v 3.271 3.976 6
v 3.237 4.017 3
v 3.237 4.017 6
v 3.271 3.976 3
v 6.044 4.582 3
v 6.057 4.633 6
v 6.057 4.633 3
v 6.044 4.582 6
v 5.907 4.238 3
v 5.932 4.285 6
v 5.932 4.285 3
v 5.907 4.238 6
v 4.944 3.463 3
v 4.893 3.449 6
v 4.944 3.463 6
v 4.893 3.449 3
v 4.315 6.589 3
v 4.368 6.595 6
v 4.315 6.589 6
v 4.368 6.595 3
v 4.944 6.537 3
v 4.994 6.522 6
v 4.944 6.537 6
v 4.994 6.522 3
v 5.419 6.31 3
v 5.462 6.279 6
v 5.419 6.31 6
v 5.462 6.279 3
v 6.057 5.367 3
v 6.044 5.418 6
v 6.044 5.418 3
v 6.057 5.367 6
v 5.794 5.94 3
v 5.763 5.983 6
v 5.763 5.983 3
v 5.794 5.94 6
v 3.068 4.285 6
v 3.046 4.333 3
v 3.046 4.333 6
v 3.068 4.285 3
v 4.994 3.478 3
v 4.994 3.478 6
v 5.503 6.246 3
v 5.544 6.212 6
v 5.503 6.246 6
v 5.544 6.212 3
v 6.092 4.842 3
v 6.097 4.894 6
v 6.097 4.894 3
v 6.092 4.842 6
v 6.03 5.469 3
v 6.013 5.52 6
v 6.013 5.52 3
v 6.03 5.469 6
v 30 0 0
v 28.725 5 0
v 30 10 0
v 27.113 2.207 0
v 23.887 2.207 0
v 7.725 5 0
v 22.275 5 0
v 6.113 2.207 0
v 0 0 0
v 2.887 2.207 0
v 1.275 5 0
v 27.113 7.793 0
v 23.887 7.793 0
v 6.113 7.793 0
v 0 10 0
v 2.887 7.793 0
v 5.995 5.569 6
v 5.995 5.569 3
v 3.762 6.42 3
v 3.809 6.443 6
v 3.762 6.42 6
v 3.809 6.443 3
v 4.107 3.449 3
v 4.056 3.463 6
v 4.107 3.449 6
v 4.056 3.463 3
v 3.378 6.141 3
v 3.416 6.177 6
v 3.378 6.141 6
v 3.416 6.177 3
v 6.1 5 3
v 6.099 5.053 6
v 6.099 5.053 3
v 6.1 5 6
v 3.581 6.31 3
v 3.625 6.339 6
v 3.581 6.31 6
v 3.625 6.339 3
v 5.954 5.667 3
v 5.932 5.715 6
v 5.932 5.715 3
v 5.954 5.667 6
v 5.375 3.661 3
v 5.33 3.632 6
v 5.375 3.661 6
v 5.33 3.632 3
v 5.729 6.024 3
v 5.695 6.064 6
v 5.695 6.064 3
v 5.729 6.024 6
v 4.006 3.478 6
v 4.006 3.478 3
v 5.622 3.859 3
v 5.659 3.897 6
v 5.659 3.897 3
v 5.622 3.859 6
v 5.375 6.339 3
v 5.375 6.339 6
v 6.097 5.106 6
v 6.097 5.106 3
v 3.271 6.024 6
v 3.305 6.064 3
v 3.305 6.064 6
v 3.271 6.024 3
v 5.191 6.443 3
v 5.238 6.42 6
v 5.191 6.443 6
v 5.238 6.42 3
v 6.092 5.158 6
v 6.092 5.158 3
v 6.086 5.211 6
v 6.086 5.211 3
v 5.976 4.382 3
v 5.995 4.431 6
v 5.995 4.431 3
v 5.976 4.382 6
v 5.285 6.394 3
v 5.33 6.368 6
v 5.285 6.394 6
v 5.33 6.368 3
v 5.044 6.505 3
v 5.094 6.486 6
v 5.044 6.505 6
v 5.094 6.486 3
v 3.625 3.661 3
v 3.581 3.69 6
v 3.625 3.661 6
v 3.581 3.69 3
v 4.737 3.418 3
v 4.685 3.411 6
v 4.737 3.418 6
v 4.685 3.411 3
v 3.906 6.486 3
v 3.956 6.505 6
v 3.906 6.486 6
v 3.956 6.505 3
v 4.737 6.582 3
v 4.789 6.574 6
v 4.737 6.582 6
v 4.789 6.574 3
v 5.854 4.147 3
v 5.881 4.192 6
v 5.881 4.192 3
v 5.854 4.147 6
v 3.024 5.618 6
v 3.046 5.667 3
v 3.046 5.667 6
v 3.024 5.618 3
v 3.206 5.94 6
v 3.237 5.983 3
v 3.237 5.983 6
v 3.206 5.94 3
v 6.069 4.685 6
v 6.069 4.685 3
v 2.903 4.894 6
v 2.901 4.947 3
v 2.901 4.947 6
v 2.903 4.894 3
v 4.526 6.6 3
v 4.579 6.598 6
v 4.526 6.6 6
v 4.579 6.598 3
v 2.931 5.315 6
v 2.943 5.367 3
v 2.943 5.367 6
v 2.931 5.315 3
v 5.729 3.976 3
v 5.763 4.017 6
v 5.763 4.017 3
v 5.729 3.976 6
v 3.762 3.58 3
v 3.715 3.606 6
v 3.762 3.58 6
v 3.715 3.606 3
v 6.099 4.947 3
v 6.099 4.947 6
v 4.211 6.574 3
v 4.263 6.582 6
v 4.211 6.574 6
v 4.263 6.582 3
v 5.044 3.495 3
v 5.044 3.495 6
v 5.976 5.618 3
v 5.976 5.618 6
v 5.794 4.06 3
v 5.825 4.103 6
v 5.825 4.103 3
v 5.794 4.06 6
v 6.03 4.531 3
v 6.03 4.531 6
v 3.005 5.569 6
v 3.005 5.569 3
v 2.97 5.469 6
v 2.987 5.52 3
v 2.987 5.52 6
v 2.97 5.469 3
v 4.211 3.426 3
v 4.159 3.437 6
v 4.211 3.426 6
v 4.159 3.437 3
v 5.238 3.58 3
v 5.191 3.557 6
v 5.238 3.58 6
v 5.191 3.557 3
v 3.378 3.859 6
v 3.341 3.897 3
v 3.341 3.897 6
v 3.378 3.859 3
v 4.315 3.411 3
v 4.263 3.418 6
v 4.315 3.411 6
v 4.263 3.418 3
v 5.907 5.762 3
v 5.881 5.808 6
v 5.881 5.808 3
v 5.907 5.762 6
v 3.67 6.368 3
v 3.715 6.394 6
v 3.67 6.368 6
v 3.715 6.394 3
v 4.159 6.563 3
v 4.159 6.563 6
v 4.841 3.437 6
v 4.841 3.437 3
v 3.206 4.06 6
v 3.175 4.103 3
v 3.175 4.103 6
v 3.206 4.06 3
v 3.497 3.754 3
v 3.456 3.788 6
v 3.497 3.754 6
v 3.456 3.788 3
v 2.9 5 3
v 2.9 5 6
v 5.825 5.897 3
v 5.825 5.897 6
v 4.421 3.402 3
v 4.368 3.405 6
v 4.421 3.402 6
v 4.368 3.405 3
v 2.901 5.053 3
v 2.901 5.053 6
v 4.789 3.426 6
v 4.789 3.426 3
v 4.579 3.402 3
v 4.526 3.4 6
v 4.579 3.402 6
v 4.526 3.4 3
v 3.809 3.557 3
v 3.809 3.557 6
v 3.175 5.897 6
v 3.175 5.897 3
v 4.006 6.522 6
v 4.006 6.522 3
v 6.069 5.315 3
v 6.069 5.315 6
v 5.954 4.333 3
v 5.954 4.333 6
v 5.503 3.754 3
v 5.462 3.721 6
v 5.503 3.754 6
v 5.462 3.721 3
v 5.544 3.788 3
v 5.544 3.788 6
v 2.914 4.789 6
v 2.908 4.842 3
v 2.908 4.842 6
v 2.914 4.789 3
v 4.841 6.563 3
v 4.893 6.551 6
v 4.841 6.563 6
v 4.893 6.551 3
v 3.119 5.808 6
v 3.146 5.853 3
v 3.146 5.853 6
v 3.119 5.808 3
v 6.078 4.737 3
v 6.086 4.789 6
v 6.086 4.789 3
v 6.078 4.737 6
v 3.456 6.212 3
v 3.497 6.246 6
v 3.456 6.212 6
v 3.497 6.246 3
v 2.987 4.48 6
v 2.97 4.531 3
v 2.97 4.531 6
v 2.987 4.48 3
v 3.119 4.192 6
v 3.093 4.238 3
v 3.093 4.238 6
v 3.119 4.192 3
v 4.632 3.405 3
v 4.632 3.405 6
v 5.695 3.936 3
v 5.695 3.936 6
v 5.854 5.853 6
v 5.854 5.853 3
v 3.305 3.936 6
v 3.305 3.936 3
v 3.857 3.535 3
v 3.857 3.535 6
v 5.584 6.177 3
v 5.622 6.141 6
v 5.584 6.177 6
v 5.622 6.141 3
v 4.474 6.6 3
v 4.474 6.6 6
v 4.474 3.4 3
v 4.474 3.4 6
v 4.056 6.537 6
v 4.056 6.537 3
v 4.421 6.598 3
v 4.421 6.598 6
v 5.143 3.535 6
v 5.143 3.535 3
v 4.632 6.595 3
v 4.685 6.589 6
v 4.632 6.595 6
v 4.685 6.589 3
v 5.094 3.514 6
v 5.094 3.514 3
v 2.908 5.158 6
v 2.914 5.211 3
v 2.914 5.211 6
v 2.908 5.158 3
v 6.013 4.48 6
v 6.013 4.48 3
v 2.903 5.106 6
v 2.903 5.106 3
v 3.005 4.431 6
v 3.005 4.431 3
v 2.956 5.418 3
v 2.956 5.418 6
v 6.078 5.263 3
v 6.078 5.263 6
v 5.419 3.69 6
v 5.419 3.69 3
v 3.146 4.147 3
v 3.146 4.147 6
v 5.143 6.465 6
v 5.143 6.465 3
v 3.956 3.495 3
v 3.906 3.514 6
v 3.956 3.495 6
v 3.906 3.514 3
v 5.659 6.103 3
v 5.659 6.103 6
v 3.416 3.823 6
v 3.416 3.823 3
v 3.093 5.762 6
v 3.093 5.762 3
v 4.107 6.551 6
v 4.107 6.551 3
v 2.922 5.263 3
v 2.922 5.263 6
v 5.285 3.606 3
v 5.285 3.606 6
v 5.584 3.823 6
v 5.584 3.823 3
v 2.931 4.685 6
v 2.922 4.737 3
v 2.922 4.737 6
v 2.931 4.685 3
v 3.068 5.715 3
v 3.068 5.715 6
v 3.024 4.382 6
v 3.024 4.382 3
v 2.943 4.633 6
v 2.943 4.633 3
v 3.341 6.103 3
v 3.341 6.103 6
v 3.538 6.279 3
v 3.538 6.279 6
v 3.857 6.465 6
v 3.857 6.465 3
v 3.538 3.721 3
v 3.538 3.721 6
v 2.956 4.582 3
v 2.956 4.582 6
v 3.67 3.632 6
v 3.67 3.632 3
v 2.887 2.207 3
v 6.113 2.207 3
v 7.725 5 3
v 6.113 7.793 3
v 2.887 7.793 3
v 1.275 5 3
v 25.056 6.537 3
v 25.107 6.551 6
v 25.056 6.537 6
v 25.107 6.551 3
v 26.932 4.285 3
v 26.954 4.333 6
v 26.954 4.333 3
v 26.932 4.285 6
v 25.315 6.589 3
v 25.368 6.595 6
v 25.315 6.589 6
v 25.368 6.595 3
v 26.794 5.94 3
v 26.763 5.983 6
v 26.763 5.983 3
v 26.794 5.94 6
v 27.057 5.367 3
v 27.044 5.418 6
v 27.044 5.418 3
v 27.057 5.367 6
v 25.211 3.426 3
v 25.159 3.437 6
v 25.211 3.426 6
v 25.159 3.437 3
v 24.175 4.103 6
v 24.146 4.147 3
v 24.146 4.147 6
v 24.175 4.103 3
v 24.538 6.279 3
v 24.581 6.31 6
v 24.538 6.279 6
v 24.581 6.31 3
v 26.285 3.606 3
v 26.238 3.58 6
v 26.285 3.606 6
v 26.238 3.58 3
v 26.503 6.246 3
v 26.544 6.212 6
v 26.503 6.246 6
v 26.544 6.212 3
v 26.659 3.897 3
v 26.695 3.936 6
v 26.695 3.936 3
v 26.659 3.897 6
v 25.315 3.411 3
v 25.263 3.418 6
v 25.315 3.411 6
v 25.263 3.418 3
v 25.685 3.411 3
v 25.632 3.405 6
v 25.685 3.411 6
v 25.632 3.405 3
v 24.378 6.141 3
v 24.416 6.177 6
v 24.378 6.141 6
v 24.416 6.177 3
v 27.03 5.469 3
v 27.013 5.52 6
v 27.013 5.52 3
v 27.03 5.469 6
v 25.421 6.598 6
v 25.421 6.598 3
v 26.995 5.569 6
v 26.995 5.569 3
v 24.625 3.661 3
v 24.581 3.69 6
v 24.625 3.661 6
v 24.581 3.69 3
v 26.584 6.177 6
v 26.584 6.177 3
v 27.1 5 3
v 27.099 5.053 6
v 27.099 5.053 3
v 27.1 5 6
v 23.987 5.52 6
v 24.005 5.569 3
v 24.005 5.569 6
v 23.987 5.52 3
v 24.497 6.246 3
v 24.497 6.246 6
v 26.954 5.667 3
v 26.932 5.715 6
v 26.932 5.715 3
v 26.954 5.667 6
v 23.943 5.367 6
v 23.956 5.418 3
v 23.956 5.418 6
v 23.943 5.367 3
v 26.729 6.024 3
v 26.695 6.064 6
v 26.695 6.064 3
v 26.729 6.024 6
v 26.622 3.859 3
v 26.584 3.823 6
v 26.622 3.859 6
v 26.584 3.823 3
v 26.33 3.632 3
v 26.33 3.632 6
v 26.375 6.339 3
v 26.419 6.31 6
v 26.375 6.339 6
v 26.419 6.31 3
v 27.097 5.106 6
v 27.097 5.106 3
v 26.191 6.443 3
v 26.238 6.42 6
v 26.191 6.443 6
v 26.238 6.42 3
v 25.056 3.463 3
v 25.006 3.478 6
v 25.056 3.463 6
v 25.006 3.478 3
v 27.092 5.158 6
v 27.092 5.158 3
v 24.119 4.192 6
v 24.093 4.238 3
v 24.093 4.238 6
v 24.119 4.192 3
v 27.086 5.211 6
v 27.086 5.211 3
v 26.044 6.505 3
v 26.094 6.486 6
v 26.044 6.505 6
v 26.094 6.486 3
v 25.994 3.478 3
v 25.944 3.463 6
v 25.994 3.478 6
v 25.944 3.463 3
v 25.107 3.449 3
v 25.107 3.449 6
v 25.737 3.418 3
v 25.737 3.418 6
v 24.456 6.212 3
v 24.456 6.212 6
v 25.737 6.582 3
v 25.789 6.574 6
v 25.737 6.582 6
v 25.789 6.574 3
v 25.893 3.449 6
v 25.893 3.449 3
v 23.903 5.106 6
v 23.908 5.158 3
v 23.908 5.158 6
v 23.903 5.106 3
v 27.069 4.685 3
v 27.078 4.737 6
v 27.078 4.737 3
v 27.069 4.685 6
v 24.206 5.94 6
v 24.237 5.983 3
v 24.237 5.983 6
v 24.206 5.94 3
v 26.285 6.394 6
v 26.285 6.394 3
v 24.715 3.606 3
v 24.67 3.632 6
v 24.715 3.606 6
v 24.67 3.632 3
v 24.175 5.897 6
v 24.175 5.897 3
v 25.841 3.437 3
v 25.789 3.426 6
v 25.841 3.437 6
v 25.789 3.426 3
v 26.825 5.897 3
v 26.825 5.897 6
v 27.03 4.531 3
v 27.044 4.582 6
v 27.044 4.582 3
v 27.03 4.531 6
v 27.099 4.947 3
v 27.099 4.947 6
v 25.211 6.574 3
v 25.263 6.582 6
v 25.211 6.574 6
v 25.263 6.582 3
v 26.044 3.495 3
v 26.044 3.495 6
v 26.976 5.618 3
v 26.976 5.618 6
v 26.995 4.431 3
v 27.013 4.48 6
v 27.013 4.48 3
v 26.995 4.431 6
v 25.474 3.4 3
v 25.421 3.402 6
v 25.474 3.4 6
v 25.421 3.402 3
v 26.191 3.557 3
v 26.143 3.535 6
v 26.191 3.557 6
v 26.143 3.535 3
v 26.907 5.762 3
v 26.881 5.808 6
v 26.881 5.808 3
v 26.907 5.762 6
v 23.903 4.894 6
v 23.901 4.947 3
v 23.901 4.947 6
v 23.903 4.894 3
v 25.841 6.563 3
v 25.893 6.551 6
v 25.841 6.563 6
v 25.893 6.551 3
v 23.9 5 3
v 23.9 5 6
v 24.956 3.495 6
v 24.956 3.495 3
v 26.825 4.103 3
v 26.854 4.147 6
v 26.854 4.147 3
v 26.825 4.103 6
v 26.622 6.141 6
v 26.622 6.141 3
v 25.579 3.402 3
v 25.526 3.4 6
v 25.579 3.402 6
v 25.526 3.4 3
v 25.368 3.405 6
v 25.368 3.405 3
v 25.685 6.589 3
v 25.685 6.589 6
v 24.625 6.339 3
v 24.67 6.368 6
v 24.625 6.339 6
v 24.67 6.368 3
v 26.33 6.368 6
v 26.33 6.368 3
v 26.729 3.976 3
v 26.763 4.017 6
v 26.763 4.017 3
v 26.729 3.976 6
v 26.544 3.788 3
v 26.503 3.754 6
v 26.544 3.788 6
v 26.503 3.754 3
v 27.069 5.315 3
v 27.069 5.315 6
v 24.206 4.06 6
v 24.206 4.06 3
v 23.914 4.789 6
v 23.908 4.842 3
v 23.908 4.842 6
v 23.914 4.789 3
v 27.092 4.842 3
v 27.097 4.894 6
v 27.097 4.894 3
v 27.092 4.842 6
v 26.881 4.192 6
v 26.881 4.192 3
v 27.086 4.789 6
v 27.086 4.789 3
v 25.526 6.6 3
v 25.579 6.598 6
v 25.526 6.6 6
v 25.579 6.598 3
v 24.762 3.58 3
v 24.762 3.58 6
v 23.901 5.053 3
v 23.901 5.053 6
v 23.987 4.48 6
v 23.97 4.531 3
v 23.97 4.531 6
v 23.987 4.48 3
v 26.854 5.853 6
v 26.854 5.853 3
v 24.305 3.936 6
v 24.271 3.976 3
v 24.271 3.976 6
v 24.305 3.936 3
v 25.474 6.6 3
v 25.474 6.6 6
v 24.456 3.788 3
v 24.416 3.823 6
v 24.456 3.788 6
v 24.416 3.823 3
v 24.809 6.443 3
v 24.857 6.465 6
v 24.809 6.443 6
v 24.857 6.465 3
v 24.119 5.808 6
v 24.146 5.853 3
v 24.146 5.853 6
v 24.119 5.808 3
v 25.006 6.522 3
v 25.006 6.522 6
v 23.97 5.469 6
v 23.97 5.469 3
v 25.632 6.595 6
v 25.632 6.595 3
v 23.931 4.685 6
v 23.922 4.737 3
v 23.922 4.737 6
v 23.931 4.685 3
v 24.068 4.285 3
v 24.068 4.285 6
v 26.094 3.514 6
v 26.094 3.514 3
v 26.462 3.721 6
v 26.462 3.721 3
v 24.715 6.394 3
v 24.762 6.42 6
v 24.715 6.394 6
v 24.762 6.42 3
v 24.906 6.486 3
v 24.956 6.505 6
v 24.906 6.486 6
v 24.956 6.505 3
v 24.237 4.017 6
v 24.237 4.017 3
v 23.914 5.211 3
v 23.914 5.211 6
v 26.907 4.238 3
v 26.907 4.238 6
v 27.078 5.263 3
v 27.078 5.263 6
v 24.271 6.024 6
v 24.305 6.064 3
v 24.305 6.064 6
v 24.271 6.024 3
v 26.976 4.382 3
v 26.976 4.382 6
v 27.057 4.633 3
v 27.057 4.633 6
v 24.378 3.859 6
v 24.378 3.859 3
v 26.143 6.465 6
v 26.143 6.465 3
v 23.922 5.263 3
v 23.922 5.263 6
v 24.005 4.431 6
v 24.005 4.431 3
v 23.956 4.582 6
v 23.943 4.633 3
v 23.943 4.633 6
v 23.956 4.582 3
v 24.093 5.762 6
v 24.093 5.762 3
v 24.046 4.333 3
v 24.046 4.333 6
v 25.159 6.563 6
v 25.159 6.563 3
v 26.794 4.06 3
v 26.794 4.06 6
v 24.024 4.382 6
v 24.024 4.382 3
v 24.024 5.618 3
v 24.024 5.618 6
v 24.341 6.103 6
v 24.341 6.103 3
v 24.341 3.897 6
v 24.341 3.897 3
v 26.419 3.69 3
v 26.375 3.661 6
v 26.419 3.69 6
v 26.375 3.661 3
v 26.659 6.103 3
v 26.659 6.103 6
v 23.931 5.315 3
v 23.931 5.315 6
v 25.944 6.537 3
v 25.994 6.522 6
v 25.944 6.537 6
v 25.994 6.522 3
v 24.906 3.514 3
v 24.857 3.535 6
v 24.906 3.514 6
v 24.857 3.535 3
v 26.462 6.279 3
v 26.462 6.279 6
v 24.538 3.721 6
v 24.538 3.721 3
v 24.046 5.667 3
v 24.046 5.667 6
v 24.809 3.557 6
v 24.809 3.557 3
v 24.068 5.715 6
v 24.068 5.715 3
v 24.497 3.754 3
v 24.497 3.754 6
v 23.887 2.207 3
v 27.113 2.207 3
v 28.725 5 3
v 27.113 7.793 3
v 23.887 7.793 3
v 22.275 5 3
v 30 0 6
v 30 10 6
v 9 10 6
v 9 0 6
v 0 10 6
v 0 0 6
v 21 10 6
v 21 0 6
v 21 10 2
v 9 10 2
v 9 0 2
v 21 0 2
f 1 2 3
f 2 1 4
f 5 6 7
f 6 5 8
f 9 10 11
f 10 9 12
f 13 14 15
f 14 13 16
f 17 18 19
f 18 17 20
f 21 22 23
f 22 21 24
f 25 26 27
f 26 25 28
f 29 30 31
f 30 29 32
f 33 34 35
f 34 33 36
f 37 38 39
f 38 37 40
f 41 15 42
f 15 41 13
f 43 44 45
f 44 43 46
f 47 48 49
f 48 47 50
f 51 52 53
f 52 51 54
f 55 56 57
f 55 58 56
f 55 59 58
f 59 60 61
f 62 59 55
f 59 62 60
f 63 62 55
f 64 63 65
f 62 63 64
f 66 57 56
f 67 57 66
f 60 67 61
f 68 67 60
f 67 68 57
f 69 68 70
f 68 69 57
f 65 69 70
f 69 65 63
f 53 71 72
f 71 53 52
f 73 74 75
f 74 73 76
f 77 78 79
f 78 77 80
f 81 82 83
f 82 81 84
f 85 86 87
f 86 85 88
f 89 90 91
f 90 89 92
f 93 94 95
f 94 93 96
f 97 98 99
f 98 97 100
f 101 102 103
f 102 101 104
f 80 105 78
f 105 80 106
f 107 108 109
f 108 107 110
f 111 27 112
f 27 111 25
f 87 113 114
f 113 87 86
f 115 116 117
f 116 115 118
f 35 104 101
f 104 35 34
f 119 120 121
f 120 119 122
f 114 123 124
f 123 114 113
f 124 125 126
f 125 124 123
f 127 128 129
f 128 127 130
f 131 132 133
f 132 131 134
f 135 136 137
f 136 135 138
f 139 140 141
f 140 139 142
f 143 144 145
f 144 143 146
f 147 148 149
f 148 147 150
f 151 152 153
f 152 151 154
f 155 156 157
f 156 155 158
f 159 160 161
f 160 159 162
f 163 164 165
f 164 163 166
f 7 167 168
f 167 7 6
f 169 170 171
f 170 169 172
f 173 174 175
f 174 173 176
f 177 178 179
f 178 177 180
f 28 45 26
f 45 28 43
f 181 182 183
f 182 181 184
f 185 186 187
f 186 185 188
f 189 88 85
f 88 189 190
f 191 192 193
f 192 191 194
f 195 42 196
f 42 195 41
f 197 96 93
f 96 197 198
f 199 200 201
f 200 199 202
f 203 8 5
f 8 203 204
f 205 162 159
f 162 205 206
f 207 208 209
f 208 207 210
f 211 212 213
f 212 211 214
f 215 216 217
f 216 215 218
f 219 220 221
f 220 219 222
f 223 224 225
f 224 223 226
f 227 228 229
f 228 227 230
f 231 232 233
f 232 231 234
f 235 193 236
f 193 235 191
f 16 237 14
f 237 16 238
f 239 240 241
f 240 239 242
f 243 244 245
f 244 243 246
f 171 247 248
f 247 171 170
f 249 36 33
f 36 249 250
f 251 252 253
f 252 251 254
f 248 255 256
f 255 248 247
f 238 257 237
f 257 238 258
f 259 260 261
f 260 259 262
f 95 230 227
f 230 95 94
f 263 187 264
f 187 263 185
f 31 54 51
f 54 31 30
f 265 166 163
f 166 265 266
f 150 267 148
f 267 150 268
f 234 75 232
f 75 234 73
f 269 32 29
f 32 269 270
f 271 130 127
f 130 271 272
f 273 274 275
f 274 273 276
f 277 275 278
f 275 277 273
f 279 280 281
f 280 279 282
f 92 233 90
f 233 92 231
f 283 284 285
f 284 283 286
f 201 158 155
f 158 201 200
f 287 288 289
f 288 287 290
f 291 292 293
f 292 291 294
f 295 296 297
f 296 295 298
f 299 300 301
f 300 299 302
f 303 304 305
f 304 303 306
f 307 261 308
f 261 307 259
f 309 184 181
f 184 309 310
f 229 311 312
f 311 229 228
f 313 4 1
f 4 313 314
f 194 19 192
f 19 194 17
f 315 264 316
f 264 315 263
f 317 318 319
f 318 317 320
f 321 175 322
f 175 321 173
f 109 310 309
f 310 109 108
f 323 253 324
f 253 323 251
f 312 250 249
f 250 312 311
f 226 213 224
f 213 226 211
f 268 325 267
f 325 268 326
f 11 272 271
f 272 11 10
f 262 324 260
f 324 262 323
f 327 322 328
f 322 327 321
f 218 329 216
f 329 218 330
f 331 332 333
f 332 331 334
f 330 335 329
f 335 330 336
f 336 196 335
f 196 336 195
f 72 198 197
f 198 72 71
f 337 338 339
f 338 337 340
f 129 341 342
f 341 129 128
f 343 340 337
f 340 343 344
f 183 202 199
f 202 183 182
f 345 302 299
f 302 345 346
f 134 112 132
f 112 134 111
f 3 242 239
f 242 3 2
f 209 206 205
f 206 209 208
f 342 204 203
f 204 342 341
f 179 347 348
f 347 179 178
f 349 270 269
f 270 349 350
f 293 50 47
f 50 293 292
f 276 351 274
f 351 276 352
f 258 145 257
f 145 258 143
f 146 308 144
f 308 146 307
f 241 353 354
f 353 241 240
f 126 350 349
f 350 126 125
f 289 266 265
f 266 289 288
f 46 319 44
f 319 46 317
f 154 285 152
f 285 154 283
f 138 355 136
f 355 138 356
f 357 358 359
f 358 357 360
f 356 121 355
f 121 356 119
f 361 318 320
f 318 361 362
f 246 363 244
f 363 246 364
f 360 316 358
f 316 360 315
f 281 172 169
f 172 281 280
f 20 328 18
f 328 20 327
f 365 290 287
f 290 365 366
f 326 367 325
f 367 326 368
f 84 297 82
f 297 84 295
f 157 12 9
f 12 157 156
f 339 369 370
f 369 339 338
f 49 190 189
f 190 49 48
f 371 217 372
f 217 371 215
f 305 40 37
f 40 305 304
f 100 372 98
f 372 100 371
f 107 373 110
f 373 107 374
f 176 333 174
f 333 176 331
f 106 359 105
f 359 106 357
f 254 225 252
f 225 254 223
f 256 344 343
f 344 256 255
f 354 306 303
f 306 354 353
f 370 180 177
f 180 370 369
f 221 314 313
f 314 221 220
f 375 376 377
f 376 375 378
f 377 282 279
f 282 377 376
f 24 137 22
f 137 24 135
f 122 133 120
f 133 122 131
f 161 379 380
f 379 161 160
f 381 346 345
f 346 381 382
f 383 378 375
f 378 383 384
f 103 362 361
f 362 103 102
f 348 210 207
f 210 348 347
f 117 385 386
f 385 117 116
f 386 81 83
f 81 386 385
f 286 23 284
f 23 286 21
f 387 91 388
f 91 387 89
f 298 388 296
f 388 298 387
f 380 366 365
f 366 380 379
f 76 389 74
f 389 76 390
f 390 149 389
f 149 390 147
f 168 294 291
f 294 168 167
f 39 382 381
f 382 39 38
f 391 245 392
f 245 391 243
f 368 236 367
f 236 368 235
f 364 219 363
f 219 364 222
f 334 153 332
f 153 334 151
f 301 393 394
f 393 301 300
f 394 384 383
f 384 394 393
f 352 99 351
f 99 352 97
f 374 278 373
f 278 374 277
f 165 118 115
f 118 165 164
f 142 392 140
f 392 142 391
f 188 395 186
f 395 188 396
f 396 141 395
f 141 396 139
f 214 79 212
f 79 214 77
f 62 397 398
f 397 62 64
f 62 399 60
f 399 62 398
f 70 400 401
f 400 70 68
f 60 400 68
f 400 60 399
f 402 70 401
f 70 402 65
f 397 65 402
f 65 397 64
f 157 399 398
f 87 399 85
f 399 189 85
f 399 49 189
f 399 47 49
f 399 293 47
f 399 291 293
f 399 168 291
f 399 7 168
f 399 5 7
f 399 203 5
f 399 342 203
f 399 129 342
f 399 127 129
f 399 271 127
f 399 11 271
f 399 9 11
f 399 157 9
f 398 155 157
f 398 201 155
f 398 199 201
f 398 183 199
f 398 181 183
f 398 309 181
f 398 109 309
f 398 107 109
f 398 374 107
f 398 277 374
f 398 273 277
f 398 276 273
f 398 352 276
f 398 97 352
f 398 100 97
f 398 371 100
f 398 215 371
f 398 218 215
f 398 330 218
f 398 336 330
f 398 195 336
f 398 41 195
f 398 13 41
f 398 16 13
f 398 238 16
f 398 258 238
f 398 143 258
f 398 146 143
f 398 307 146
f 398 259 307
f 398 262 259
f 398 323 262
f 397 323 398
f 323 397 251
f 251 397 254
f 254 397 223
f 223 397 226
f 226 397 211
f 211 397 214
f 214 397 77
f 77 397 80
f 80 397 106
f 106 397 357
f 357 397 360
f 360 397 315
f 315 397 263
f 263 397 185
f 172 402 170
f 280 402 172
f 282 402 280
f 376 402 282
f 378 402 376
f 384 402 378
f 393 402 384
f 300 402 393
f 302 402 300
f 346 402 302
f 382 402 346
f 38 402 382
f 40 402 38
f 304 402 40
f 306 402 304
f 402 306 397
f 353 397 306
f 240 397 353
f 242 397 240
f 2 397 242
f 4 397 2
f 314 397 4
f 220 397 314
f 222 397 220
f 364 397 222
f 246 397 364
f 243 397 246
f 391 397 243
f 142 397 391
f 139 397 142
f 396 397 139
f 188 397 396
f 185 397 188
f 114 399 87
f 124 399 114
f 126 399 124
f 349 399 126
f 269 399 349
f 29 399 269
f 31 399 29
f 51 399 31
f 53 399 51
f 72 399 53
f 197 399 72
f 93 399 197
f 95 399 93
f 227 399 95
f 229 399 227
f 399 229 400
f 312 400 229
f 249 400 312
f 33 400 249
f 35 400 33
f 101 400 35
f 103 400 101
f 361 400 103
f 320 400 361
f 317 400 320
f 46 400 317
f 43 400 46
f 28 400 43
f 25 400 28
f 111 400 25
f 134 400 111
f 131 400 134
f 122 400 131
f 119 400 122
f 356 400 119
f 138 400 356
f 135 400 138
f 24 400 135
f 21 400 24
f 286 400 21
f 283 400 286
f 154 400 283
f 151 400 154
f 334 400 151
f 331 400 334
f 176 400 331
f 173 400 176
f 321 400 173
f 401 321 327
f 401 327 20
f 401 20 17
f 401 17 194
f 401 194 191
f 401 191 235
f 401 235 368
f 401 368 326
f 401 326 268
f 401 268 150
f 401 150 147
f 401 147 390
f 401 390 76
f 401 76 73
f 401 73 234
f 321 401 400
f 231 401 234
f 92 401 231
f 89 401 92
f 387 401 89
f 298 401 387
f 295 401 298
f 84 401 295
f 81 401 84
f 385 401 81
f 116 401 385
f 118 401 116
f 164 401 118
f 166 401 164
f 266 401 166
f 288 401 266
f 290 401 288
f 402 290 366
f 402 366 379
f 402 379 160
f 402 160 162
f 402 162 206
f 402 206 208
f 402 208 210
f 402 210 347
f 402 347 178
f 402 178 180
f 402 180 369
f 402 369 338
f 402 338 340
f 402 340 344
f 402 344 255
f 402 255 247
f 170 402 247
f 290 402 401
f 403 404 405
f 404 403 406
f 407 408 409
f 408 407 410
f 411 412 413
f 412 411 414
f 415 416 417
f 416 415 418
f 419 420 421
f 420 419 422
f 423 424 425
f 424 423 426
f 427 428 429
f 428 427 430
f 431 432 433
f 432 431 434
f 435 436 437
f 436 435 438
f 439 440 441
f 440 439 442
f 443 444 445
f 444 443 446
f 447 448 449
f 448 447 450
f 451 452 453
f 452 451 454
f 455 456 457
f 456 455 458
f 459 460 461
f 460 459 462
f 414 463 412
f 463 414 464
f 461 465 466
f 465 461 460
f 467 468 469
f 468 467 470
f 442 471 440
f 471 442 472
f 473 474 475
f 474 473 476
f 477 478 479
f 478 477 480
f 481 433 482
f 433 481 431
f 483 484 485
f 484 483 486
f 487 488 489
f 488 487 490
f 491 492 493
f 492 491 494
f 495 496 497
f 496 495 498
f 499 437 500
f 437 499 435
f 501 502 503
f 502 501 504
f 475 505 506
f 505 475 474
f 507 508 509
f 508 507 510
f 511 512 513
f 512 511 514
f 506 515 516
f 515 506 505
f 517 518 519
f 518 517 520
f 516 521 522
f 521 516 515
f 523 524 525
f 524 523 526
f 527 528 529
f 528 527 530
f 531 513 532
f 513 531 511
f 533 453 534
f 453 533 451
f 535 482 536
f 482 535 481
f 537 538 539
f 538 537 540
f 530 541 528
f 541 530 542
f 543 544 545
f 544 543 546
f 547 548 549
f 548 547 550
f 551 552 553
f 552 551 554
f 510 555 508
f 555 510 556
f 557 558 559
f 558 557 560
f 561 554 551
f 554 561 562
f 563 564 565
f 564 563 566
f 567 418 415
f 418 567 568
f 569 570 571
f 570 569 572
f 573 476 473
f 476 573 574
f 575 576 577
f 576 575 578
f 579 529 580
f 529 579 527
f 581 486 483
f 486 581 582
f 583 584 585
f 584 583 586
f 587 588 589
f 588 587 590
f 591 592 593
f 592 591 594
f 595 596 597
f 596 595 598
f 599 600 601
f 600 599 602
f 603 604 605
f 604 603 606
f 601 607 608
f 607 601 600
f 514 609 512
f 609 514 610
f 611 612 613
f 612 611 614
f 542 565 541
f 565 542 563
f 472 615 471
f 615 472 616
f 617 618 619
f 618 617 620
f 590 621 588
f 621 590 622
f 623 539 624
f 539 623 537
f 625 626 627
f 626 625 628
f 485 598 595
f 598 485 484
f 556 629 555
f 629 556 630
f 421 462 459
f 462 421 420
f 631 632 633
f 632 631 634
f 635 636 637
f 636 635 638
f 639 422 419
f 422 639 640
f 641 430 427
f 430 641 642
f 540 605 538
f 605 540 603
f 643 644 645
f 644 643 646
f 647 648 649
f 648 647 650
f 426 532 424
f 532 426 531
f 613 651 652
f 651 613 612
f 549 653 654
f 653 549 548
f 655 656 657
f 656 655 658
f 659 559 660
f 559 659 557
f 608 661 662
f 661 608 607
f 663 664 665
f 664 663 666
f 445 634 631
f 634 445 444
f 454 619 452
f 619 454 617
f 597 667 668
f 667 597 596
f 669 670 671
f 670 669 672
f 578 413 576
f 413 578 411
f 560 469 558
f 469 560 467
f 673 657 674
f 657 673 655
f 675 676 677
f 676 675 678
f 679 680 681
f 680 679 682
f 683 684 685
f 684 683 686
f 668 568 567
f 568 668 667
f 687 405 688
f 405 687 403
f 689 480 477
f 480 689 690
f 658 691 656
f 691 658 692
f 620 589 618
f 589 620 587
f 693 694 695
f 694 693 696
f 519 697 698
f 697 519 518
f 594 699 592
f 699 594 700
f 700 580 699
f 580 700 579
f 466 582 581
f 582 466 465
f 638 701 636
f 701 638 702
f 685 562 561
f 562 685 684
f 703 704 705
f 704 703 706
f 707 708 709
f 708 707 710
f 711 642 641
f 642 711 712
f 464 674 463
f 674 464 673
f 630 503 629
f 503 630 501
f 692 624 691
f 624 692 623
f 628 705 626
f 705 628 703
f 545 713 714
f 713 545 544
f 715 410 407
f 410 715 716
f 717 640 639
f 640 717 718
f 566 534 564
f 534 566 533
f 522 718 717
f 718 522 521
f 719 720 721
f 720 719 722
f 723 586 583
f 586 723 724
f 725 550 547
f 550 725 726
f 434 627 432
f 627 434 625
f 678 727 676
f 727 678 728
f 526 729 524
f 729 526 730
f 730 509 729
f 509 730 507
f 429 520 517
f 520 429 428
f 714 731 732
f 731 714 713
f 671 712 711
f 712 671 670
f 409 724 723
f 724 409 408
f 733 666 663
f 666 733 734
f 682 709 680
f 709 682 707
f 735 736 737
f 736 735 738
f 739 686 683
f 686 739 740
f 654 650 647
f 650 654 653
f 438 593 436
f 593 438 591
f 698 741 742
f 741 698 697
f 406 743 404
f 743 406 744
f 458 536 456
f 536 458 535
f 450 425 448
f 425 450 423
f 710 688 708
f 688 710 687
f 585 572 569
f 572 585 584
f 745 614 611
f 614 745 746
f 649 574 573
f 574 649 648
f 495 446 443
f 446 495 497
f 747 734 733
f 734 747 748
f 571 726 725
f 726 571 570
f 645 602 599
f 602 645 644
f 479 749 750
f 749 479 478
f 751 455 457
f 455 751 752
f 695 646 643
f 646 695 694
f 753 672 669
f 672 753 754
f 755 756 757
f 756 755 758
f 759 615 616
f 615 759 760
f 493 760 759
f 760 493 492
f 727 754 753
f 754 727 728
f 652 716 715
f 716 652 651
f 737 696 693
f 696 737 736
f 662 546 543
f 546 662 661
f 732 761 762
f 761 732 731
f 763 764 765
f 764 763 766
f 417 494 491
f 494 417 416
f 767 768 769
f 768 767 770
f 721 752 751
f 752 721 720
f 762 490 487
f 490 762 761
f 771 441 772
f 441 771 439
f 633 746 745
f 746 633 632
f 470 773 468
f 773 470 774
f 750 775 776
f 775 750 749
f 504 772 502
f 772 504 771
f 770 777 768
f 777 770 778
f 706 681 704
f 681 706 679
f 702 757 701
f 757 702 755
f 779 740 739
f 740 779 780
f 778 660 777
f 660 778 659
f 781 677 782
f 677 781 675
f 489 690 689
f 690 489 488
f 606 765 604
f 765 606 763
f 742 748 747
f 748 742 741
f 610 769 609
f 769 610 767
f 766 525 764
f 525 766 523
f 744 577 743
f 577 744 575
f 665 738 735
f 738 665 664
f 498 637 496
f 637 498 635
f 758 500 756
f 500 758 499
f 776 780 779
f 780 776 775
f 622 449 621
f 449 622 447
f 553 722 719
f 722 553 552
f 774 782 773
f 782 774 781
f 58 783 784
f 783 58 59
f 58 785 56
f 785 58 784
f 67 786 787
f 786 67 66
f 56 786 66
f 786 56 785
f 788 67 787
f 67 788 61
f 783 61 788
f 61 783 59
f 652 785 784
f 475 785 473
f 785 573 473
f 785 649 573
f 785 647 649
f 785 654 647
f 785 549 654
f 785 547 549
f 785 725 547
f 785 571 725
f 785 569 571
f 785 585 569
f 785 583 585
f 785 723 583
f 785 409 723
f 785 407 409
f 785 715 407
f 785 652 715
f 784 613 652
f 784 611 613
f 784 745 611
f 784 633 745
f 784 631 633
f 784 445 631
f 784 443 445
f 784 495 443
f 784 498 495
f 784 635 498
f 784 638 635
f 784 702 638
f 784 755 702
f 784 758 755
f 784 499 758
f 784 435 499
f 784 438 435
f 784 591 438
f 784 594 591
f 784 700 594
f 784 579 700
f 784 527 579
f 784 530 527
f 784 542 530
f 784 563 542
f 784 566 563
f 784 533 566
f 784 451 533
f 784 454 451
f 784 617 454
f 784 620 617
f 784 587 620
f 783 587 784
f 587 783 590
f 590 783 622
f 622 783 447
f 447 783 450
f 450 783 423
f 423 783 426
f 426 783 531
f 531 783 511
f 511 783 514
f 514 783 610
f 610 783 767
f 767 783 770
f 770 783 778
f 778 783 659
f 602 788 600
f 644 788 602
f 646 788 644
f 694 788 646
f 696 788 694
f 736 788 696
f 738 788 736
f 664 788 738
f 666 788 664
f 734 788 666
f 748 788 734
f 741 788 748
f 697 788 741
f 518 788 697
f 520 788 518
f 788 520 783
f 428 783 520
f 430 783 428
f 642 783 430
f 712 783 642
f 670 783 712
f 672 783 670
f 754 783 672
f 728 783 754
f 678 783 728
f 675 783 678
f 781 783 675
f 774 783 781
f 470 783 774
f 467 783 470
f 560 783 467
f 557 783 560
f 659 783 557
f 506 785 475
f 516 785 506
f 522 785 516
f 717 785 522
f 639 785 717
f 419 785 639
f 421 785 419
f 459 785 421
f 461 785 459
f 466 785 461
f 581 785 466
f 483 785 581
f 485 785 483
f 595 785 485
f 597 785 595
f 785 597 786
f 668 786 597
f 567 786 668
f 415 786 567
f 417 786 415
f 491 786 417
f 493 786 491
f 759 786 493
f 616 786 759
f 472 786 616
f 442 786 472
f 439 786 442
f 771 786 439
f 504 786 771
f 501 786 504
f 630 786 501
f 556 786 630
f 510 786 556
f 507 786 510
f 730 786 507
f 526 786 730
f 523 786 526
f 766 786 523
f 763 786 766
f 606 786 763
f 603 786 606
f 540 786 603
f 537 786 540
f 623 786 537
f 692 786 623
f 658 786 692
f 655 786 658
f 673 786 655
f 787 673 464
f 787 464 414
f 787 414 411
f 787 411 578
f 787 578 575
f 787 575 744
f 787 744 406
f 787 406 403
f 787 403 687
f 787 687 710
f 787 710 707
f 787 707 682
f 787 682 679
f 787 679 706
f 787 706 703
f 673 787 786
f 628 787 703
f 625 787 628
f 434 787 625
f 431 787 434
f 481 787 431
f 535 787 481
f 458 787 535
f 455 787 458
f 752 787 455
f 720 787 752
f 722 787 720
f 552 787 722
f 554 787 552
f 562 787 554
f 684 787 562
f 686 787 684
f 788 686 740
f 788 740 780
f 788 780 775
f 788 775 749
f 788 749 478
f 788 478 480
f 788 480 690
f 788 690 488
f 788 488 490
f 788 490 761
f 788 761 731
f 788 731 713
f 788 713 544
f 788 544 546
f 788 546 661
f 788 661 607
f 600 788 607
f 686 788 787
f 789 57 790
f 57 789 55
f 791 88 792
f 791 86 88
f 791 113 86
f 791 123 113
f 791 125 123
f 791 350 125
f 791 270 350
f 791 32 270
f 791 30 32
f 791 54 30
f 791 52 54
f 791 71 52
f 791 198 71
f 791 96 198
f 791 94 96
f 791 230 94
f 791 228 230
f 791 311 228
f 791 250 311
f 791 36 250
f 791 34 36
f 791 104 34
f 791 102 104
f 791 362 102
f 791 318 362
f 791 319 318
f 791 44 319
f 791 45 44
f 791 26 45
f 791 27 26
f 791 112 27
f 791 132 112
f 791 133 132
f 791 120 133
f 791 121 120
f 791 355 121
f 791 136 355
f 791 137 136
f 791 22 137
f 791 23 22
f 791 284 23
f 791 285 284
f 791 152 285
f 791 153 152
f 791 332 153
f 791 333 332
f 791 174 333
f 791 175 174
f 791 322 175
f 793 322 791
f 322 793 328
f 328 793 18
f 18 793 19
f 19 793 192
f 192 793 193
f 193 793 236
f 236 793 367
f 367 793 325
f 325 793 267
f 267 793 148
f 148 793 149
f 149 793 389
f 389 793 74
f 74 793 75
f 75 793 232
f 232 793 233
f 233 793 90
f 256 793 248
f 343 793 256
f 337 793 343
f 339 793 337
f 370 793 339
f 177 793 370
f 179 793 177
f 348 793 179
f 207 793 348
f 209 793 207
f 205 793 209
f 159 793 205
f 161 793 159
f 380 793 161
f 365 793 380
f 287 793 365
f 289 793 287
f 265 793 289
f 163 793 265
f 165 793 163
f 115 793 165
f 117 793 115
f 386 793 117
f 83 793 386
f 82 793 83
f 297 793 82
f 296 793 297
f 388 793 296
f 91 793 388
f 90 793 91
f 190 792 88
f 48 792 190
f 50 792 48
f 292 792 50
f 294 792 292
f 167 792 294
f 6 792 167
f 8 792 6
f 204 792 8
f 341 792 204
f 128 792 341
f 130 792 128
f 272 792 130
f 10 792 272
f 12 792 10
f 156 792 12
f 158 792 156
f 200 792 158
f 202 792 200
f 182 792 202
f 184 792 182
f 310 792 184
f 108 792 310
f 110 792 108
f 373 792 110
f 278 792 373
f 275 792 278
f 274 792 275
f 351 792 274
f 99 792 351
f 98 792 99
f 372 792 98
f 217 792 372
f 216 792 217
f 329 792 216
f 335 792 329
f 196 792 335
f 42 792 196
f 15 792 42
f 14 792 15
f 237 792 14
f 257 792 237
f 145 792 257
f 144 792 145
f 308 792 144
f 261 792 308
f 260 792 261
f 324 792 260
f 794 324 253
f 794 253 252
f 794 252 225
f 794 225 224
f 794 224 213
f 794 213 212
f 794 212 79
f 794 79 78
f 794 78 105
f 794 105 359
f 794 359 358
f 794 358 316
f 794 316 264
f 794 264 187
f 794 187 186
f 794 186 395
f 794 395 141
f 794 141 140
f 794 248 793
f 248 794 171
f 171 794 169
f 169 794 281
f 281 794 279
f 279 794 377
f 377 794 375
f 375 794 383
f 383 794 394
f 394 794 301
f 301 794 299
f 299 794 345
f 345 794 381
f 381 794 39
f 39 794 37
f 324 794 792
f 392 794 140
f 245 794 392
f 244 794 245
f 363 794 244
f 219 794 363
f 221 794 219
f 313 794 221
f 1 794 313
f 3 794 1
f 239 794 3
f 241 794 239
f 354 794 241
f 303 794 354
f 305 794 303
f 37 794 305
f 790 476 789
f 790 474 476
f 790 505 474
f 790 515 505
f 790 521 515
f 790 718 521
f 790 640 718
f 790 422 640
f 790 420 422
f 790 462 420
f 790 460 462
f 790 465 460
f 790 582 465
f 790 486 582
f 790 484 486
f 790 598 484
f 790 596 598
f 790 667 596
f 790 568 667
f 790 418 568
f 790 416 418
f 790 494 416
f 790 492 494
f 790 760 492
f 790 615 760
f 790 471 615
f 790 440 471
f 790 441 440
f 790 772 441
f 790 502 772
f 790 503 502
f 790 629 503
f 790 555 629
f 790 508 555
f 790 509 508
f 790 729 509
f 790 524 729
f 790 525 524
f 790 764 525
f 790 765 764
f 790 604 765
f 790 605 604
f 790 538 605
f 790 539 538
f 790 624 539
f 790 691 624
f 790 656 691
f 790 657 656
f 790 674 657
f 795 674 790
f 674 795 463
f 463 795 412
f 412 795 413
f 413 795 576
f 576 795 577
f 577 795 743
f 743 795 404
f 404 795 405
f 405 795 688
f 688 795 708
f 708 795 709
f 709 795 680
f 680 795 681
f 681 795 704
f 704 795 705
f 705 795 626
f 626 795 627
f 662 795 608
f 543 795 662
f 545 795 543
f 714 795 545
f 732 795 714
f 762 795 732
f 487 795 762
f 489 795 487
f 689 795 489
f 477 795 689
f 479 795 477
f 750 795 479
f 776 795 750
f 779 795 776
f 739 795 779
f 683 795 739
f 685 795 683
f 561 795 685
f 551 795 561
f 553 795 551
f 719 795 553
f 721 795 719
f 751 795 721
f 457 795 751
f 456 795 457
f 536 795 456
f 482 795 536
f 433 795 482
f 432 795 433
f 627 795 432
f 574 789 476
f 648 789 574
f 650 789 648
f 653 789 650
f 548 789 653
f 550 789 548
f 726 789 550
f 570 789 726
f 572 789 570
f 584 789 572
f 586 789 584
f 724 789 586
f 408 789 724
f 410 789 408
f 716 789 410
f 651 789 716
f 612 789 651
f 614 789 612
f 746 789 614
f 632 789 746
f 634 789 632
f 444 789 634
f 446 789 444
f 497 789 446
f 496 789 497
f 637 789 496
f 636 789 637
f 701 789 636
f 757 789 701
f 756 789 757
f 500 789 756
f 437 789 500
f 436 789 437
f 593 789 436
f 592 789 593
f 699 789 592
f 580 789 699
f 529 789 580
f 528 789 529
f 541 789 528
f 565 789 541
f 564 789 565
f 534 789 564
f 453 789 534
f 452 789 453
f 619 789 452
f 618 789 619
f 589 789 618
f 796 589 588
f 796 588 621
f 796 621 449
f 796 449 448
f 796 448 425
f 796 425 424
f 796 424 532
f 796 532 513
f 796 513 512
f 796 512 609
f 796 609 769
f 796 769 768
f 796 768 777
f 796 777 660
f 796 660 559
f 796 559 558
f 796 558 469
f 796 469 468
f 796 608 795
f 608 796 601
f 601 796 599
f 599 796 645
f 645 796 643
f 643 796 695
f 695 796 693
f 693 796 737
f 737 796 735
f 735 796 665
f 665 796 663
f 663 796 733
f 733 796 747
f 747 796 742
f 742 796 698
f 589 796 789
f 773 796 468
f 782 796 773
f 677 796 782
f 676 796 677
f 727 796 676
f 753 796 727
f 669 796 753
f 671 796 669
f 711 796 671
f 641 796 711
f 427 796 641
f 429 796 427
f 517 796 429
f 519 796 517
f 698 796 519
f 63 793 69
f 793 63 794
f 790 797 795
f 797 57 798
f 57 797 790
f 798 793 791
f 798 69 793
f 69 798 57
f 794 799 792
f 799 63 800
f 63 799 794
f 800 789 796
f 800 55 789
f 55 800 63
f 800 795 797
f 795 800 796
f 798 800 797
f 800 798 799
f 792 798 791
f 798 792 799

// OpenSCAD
//button 12mm
// hoch = 4mm


difference() {
    cube([30, 10, 2  + 4]);
    translate([9, 0, 2]) cube([12, 10, 10]);
    
    translate([4.5, 5, 0]) {
        cylinder(d=3.2, h=8, $fn=190);
        cylinder(r = 5.5 / 2 / cos(180 / 6) + 0.05, h=3, $fn=6);
    }
    translate([25.5, 5, 0]) {
        cylinder(d=3.2, h=8, $fn=190);
        cylinder(r = 5.5 / 2 / cos(180 / 6) + 0.05, h=3, $fn=6);
    }
}
